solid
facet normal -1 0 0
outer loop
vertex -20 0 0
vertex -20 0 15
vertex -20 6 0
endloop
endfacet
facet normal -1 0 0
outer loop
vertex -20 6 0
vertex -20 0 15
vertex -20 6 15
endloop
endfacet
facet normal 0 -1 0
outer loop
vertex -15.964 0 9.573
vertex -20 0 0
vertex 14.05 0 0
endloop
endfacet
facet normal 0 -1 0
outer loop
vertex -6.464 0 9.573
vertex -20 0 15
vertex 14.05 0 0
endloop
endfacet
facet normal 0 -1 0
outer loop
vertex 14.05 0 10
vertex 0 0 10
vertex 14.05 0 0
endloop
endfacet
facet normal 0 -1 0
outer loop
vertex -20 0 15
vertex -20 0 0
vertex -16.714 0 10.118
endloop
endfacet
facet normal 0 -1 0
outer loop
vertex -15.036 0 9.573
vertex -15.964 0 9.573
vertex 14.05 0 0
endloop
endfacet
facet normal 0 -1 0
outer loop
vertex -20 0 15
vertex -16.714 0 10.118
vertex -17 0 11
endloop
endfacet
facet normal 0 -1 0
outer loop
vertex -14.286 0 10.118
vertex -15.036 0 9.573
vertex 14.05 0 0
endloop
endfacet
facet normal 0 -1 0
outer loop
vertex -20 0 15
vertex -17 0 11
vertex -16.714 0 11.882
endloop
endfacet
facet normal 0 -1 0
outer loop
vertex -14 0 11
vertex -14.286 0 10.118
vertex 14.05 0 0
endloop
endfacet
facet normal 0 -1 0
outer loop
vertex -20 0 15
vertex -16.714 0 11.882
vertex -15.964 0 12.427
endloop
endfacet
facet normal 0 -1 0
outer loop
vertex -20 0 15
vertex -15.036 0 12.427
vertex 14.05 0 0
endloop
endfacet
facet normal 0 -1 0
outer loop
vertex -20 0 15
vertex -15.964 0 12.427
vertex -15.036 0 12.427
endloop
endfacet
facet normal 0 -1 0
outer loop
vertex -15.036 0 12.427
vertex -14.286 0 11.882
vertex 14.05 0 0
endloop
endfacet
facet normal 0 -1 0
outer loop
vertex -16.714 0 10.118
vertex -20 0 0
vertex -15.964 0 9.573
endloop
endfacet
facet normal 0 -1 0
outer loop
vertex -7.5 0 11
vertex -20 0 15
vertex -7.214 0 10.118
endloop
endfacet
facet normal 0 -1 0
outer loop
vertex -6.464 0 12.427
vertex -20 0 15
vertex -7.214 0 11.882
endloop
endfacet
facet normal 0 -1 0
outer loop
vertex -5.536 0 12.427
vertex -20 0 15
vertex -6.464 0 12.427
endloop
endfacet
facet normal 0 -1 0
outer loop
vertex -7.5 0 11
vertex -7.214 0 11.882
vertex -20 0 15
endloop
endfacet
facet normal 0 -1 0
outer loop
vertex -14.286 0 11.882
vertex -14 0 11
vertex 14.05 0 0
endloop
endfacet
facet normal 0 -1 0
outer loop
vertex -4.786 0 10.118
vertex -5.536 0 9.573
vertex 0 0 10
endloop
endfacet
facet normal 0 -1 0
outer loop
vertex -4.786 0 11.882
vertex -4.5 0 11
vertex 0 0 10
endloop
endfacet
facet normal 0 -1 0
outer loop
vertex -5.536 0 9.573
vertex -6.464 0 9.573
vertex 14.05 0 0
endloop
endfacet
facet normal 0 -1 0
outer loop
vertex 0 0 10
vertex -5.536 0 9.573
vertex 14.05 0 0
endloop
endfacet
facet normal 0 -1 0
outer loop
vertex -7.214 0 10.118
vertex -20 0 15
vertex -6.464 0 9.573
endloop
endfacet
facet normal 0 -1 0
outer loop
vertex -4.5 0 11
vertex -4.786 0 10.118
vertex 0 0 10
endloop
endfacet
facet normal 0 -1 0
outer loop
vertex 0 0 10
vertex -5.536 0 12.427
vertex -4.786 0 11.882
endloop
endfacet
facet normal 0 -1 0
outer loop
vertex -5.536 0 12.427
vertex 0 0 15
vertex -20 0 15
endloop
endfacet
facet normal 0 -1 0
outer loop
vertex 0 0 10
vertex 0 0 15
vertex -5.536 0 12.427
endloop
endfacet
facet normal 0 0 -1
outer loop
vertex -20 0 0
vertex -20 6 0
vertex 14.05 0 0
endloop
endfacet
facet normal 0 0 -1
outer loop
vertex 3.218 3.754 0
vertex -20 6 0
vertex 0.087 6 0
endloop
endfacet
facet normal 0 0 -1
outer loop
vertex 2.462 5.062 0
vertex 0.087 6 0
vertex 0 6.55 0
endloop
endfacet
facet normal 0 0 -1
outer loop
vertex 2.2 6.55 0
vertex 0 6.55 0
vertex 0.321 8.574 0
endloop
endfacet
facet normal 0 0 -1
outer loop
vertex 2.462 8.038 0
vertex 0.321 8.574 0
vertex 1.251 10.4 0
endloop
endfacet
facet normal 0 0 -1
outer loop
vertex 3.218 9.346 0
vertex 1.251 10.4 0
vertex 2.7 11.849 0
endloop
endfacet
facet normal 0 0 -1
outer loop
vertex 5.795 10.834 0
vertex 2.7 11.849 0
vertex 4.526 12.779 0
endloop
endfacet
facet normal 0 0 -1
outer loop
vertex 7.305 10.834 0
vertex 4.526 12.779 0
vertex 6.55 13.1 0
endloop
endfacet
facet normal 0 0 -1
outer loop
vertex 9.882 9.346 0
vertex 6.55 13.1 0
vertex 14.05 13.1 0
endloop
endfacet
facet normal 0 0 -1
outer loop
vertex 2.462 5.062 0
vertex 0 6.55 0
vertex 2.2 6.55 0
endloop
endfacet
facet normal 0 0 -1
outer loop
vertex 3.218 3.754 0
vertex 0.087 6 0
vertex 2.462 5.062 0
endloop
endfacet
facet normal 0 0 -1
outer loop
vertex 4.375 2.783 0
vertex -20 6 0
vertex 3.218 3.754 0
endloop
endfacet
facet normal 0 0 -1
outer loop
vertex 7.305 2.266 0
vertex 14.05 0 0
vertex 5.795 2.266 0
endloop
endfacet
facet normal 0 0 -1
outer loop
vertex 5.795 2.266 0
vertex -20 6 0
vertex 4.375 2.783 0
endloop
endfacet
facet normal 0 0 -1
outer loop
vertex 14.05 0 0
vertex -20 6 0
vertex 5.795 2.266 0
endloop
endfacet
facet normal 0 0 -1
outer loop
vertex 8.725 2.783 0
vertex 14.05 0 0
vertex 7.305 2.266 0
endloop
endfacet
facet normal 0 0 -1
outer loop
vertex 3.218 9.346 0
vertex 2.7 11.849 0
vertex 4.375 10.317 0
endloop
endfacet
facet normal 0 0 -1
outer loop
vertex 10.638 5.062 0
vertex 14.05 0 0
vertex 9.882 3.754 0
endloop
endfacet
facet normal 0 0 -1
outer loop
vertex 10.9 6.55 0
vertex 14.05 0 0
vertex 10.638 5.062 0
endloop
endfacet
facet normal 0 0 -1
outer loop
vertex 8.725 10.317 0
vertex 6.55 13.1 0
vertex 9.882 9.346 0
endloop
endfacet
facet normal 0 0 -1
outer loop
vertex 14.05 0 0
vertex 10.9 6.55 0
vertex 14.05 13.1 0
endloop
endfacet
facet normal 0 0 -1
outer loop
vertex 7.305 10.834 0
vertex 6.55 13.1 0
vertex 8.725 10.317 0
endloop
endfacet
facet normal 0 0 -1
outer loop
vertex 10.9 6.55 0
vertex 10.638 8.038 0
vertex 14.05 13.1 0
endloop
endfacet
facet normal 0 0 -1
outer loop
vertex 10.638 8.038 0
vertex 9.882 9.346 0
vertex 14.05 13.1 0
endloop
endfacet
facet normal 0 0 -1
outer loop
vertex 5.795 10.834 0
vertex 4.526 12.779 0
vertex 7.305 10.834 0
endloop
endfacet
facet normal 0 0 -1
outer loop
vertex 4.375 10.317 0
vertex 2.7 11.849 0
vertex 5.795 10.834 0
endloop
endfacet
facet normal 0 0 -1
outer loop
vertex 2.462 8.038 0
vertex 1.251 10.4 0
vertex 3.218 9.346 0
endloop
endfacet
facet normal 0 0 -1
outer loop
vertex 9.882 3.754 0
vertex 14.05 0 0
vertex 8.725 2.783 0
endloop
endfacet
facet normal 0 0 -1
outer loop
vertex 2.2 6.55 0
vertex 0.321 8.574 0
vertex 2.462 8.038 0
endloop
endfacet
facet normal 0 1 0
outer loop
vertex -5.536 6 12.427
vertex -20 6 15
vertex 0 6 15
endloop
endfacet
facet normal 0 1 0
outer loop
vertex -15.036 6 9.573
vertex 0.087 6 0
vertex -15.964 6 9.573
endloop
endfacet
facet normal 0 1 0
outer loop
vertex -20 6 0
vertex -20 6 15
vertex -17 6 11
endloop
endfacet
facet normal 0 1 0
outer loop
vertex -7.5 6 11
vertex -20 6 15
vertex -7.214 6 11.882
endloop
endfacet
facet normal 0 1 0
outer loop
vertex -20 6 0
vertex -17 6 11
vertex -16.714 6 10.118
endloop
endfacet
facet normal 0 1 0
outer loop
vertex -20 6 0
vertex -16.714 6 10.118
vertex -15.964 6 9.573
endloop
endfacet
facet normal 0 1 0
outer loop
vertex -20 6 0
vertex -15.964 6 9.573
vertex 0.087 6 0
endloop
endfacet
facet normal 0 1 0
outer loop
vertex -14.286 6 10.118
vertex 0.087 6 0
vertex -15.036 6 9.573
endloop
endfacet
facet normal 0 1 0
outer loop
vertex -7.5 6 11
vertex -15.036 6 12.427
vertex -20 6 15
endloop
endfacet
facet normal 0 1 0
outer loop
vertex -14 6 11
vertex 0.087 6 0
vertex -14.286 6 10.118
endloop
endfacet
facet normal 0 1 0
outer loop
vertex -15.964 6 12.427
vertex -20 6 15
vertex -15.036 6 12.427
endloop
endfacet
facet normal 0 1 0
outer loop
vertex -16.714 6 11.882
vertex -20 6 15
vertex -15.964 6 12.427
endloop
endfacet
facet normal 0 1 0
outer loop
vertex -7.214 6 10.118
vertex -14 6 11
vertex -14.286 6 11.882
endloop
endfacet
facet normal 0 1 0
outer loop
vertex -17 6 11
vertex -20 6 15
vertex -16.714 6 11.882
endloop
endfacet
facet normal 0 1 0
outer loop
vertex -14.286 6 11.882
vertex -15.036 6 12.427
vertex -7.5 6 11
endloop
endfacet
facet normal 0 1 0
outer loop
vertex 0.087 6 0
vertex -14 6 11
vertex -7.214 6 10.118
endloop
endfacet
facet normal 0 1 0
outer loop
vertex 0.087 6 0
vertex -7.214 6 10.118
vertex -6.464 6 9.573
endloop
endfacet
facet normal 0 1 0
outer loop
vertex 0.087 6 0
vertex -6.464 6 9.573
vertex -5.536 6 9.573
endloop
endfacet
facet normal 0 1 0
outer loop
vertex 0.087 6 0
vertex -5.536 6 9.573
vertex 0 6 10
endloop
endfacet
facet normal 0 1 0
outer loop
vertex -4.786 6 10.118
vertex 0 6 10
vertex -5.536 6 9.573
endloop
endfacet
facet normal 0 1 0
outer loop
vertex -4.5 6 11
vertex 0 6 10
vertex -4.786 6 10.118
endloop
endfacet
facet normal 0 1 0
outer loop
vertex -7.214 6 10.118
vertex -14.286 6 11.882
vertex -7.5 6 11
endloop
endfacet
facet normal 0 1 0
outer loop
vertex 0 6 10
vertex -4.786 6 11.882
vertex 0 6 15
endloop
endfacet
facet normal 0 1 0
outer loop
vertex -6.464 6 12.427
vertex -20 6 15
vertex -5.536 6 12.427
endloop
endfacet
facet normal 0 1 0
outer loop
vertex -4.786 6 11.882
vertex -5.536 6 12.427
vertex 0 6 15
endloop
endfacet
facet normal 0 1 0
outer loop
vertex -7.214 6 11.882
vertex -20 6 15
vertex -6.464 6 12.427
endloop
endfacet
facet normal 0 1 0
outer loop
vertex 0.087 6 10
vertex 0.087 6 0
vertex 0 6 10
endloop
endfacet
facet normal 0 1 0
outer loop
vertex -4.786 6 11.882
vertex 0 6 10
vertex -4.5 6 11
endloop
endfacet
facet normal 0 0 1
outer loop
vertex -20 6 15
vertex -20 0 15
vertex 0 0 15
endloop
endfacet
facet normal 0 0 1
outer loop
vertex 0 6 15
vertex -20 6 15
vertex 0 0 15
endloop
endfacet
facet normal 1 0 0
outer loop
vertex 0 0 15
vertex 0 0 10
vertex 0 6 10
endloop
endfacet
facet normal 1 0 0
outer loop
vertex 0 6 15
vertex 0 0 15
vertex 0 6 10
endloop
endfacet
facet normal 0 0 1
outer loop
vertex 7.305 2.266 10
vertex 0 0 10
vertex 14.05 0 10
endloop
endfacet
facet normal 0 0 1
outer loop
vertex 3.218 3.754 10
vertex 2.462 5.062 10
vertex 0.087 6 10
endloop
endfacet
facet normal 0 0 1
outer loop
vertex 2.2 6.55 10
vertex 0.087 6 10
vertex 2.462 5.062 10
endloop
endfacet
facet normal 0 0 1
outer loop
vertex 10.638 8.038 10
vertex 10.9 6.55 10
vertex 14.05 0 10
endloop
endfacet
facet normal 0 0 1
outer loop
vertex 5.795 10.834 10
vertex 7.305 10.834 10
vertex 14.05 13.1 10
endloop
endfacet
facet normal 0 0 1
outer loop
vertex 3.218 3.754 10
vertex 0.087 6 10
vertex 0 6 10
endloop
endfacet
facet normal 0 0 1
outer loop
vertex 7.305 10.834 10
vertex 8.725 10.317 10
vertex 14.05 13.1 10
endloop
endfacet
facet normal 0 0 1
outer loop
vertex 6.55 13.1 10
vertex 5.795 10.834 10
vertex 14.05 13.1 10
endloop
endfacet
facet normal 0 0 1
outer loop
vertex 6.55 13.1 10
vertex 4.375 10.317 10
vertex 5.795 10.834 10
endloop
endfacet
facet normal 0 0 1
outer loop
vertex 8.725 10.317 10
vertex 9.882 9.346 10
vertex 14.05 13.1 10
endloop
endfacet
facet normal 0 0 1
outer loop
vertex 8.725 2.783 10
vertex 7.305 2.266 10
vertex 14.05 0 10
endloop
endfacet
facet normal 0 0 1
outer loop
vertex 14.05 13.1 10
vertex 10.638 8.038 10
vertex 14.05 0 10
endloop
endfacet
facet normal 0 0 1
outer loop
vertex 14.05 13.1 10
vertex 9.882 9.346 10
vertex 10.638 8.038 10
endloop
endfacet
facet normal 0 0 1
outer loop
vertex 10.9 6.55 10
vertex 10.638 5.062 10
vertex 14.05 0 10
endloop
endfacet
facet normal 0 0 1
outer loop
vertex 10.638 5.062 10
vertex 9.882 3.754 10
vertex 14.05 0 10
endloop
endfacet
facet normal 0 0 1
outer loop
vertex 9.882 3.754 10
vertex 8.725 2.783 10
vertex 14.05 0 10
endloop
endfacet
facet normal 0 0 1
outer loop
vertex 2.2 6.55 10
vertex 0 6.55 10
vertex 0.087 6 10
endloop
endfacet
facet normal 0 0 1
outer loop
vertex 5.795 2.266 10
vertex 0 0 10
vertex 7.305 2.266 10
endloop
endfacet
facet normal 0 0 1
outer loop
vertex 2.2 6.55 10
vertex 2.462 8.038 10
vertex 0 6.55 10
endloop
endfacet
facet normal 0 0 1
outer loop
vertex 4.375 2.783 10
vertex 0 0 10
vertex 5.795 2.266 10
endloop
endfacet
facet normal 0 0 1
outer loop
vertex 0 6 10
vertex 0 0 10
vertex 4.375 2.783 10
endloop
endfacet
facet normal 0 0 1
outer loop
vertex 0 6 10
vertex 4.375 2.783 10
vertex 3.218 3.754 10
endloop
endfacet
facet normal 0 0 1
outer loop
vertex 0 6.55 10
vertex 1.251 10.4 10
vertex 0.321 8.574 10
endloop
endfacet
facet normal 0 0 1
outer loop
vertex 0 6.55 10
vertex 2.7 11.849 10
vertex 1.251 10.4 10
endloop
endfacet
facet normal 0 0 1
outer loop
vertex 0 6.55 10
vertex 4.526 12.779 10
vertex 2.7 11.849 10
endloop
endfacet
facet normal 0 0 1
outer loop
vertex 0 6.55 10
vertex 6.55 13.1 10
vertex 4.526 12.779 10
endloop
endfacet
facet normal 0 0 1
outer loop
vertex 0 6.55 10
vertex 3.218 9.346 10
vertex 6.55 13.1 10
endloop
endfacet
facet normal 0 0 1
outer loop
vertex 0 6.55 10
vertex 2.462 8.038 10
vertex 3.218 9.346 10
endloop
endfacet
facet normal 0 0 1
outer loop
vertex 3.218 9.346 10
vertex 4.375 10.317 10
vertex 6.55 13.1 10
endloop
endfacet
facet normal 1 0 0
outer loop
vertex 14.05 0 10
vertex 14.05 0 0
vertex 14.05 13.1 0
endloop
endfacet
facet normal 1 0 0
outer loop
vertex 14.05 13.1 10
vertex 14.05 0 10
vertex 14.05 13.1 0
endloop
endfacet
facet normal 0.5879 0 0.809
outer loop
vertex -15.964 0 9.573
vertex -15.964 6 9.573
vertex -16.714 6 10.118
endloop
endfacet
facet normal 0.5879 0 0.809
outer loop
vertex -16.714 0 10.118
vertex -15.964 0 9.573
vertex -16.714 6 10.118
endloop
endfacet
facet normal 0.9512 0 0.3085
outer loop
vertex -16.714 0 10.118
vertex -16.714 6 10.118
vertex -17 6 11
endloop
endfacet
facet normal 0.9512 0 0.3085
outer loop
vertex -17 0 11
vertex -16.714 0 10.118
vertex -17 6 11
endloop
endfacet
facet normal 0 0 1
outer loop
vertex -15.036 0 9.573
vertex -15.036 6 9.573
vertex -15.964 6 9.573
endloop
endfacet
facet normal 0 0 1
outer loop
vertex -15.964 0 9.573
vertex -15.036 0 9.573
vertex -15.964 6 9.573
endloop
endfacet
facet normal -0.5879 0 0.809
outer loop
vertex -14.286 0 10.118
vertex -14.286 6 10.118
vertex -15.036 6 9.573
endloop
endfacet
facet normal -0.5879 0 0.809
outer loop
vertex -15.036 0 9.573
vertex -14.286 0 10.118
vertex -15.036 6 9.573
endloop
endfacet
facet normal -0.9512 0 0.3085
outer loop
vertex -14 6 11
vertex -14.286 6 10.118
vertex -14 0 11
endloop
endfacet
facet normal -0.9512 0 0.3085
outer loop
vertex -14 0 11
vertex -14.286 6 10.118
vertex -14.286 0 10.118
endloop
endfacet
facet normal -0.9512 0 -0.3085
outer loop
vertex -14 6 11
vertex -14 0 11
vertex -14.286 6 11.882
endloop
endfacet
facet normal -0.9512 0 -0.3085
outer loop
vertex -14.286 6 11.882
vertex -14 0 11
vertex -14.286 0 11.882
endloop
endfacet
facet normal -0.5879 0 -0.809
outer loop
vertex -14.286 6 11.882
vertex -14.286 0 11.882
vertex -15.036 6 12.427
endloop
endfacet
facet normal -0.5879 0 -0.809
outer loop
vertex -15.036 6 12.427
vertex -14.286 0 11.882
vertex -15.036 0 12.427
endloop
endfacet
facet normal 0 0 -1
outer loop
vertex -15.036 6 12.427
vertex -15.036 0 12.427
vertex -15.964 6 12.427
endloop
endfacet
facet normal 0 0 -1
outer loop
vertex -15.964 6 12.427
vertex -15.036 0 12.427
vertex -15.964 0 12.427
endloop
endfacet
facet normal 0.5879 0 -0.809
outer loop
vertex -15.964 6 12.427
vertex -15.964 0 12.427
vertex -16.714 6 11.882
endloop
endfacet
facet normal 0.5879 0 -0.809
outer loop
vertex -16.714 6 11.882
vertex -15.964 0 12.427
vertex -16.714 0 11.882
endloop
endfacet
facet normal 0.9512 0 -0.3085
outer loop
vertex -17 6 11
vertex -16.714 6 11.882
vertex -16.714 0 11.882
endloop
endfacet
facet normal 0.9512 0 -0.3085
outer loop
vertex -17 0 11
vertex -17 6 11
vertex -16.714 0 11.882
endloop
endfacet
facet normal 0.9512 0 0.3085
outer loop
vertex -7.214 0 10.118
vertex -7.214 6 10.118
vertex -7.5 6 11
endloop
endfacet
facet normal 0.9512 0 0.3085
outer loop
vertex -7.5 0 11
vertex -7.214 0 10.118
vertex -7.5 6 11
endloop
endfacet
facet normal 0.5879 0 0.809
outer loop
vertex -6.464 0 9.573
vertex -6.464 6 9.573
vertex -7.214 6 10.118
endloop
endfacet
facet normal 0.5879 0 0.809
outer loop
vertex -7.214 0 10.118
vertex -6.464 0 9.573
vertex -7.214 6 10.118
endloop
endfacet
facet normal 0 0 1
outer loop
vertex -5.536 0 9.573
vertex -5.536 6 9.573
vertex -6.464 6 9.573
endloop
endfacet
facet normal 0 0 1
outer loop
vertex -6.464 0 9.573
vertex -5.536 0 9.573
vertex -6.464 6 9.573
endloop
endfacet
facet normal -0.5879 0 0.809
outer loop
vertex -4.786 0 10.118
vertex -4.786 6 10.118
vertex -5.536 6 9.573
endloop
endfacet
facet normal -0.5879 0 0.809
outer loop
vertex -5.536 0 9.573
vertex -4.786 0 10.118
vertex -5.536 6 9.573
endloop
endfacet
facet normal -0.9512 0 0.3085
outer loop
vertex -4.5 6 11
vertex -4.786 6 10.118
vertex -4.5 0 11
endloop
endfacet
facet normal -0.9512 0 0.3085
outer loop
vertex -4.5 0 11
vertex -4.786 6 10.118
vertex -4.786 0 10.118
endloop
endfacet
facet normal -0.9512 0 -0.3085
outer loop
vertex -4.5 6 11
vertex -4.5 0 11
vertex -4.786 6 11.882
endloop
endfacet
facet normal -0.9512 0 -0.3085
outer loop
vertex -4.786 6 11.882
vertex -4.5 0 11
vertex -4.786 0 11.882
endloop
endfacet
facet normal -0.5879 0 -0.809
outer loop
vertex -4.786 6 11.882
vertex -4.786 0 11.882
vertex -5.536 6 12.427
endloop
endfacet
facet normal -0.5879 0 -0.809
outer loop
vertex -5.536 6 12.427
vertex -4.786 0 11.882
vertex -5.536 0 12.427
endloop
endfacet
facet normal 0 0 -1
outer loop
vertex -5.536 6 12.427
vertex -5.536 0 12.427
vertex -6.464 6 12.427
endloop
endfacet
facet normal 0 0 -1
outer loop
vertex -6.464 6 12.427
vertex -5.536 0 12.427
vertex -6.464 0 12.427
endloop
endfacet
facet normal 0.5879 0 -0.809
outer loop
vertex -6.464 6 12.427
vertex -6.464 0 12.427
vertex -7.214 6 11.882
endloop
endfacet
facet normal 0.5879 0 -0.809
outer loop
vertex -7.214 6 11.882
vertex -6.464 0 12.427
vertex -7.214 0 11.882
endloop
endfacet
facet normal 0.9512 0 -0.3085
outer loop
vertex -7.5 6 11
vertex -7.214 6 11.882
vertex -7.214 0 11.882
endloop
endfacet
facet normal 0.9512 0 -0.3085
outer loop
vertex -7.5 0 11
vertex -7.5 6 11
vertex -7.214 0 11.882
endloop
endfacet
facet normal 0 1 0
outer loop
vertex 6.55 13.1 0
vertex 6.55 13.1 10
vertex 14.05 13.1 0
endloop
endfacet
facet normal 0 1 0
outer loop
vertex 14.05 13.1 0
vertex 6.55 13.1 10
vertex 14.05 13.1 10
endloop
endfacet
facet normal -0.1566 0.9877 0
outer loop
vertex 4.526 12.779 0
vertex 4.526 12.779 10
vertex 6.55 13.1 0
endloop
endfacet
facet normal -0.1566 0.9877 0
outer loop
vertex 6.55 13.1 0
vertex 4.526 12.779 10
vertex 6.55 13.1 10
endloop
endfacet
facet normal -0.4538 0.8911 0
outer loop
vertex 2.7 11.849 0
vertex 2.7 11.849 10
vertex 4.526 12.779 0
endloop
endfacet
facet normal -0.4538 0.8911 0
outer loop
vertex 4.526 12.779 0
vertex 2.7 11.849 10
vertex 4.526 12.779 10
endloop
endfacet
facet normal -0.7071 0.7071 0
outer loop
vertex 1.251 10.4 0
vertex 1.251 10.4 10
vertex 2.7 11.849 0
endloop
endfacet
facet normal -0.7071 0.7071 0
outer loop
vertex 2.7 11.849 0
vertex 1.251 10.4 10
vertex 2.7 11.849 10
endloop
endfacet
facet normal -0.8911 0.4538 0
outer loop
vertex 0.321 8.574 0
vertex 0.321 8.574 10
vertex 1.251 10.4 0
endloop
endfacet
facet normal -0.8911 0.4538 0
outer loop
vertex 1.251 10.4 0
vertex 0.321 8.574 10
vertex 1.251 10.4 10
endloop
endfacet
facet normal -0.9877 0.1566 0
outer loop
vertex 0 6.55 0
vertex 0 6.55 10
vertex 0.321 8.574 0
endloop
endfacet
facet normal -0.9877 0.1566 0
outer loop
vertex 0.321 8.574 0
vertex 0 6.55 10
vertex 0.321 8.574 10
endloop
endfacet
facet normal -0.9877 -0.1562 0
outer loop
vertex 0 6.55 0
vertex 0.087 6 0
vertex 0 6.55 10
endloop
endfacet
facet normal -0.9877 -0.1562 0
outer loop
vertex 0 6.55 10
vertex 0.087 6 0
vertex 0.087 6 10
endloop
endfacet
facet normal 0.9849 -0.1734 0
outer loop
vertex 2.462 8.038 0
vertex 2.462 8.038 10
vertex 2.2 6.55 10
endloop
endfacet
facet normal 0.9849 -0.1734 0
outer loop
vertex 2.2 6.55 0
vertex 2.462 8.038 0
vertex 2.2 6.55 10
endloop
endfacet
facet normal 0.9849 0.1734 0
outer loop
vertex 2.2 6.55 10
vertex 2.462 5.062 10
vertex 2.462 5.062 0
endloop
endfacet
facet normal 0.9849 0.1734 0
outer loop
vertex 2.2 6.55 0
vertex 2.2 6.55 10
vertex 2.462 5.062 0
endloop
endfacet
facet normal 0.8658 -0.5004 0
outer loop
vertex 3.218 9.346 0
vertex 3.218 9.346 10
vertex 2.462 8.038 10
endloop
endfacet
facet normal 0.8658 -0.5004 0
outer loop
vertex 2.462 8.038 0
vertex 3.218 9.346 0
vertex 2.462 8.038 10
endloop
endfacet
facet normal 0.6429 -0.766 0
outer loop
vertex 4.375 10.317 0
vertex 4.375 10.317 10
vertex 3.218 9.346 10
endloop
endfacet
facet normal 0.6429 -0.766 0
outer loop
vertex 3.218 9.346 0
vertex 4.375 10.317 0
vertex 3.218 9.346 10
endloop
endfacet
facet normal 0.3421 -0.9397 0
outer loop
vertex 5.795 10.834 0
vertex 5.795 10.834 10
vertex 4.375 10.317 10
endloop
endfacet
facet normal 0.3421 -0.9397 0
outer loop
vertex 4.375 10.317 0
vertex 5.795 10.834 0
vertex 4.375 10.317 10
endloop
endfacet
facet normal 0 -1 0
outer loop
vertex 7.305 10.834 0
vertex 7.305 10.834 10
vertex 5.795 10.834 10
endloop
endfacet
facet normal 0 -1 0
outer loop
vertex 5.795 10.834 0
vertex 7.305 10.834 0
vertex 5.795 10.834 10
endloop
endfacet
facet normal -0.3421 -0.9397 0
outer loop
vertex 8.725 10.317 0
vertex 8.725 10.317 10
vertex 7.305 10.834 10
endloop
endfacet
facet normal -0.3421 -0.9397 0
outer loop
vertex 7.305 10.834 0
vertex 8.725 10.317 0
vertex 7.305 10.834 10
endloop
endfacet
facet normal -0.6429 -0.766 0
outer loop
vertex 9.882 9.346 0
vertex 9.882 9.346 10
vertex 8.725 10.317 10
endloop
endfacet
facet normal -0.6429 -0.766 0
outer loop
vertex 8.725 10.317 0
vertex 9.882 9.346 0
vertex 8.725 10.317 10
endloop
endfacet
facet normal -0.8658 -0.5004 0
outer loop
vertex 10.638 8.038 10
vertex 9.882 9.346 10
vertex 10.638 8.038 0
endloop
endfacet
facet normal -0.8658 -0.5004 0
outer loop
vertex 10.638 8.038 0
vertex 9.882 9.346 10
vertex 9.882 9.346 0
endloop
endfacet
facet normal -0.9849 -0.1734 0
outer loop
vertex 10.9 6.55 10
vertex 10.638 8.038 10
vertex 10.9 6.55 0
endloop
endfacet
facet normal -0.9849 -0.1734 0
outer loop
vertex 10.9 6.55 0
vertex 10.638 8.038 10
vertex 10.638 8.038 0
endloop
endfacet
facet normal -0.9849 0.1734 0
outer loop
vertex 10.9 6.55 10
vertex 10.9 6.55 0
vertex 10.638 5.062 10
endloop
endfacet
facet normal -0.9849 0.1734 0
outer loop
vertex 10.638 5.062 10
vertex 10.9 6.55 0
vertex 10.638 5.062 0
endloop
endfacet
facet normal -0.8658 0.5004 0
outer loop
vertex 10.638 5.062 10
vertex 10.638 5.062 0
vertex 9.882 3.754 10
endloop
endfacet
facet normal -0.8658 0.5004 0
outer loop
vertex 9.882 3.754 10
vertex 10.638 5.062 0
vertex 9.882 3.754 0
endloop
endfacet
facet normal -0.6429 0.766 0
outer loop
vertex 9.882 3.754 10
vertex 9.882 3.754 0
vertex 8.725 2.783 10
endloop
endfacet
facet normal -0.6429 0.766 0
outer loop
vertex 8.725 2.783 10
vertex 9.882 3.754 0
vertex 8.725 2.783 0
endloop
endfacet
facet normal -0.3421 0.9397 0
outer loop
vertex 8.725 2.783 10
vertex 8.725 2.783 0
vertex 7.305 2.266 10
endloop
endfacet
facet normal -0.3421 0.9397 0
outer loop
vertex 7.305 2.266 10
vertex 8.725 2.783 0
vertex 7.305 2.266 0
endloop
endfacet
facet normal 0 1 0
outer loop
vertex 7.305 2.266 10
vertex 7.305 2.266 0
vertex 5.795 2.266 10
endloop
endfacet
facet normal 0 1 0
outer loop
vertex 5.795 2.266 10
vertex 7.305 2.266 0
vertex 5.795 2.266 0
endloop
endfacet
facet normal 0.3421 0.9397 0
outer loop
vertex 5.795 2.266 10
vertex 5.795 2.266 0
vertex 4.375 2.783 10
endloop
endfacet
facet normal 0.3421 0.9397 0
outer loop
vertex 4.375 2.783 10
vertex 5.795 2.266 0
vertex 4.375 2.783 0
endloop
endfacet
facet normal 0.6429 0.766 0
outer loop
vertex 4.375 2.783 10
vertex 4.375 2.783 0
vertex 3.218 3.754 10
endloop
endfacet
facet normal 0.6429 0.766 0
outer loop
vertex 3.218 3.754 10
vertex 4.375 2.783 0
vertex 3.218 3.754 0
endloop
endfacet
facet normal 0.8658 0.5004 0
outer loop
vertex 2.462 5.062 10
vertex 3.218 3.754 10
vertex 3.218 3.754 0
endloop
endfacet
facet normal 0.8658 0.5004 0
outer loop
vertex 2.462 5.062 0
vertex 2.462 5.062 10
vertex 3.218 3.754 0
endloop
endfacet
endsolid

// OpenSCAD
// Endstop holder for Shapercube

// Fork from Prusa Mendel repository
// Original work by Josef Průša (josefprusa@me.com) / prusadjs.cz
// Additional contributions:
// * Modified for Shapercube Z axis by Joachim Glauche (info [at ] gli-concept [dot] de)
// License: GNU GPL v3

m8_diameter = 8.7;
m3_diameter = 3;
m4_diameter = 4.3;

module endstop(){
outer_diameter = m8_diameter/2+2.2;
screw_hole_spacing = 9.5;
opening_size = m8_diameter-1.5; //openingsize

difference(){
	union(){


		translate([outer_diameter, outer_diameter, 0]) cylinder(h =10, r = outer_diameter, $fn = 20);
		translate([outer_diameter, 0, 0]) cube([7.5,outer_diameter*2,10]);
		translate([-20, 0, 0]) cube([34, 6, 10]);
		translate([-20, 0, 0]) cube([20, 6, 15]);

	}




	//translate([9, outer_diameter-opening_size/2, 0]) cube([18,opening_size,20]);
	translate([outer_diameter, outer_diameter, 0]) cylinder(h =20, r = m8_diameter/2, $fn = 18);
	//translate([17, 17, 5]) rotate([90, 0, 0]) cylinder(h =20, r = m4_diameter/2, $fn = 10);
	translate([-6, 17, 11]) rotate([90, 0, 0]) cylinder(h =20, r = m3_diameter/2, $fn = 10);
	translate([-(6+screw_hole_spacing), 17, 11]) rotate([90, 0, 0]) cylinder(h =20, r = m3_diameter/2, $fn = 10);
}
}
endstop();
